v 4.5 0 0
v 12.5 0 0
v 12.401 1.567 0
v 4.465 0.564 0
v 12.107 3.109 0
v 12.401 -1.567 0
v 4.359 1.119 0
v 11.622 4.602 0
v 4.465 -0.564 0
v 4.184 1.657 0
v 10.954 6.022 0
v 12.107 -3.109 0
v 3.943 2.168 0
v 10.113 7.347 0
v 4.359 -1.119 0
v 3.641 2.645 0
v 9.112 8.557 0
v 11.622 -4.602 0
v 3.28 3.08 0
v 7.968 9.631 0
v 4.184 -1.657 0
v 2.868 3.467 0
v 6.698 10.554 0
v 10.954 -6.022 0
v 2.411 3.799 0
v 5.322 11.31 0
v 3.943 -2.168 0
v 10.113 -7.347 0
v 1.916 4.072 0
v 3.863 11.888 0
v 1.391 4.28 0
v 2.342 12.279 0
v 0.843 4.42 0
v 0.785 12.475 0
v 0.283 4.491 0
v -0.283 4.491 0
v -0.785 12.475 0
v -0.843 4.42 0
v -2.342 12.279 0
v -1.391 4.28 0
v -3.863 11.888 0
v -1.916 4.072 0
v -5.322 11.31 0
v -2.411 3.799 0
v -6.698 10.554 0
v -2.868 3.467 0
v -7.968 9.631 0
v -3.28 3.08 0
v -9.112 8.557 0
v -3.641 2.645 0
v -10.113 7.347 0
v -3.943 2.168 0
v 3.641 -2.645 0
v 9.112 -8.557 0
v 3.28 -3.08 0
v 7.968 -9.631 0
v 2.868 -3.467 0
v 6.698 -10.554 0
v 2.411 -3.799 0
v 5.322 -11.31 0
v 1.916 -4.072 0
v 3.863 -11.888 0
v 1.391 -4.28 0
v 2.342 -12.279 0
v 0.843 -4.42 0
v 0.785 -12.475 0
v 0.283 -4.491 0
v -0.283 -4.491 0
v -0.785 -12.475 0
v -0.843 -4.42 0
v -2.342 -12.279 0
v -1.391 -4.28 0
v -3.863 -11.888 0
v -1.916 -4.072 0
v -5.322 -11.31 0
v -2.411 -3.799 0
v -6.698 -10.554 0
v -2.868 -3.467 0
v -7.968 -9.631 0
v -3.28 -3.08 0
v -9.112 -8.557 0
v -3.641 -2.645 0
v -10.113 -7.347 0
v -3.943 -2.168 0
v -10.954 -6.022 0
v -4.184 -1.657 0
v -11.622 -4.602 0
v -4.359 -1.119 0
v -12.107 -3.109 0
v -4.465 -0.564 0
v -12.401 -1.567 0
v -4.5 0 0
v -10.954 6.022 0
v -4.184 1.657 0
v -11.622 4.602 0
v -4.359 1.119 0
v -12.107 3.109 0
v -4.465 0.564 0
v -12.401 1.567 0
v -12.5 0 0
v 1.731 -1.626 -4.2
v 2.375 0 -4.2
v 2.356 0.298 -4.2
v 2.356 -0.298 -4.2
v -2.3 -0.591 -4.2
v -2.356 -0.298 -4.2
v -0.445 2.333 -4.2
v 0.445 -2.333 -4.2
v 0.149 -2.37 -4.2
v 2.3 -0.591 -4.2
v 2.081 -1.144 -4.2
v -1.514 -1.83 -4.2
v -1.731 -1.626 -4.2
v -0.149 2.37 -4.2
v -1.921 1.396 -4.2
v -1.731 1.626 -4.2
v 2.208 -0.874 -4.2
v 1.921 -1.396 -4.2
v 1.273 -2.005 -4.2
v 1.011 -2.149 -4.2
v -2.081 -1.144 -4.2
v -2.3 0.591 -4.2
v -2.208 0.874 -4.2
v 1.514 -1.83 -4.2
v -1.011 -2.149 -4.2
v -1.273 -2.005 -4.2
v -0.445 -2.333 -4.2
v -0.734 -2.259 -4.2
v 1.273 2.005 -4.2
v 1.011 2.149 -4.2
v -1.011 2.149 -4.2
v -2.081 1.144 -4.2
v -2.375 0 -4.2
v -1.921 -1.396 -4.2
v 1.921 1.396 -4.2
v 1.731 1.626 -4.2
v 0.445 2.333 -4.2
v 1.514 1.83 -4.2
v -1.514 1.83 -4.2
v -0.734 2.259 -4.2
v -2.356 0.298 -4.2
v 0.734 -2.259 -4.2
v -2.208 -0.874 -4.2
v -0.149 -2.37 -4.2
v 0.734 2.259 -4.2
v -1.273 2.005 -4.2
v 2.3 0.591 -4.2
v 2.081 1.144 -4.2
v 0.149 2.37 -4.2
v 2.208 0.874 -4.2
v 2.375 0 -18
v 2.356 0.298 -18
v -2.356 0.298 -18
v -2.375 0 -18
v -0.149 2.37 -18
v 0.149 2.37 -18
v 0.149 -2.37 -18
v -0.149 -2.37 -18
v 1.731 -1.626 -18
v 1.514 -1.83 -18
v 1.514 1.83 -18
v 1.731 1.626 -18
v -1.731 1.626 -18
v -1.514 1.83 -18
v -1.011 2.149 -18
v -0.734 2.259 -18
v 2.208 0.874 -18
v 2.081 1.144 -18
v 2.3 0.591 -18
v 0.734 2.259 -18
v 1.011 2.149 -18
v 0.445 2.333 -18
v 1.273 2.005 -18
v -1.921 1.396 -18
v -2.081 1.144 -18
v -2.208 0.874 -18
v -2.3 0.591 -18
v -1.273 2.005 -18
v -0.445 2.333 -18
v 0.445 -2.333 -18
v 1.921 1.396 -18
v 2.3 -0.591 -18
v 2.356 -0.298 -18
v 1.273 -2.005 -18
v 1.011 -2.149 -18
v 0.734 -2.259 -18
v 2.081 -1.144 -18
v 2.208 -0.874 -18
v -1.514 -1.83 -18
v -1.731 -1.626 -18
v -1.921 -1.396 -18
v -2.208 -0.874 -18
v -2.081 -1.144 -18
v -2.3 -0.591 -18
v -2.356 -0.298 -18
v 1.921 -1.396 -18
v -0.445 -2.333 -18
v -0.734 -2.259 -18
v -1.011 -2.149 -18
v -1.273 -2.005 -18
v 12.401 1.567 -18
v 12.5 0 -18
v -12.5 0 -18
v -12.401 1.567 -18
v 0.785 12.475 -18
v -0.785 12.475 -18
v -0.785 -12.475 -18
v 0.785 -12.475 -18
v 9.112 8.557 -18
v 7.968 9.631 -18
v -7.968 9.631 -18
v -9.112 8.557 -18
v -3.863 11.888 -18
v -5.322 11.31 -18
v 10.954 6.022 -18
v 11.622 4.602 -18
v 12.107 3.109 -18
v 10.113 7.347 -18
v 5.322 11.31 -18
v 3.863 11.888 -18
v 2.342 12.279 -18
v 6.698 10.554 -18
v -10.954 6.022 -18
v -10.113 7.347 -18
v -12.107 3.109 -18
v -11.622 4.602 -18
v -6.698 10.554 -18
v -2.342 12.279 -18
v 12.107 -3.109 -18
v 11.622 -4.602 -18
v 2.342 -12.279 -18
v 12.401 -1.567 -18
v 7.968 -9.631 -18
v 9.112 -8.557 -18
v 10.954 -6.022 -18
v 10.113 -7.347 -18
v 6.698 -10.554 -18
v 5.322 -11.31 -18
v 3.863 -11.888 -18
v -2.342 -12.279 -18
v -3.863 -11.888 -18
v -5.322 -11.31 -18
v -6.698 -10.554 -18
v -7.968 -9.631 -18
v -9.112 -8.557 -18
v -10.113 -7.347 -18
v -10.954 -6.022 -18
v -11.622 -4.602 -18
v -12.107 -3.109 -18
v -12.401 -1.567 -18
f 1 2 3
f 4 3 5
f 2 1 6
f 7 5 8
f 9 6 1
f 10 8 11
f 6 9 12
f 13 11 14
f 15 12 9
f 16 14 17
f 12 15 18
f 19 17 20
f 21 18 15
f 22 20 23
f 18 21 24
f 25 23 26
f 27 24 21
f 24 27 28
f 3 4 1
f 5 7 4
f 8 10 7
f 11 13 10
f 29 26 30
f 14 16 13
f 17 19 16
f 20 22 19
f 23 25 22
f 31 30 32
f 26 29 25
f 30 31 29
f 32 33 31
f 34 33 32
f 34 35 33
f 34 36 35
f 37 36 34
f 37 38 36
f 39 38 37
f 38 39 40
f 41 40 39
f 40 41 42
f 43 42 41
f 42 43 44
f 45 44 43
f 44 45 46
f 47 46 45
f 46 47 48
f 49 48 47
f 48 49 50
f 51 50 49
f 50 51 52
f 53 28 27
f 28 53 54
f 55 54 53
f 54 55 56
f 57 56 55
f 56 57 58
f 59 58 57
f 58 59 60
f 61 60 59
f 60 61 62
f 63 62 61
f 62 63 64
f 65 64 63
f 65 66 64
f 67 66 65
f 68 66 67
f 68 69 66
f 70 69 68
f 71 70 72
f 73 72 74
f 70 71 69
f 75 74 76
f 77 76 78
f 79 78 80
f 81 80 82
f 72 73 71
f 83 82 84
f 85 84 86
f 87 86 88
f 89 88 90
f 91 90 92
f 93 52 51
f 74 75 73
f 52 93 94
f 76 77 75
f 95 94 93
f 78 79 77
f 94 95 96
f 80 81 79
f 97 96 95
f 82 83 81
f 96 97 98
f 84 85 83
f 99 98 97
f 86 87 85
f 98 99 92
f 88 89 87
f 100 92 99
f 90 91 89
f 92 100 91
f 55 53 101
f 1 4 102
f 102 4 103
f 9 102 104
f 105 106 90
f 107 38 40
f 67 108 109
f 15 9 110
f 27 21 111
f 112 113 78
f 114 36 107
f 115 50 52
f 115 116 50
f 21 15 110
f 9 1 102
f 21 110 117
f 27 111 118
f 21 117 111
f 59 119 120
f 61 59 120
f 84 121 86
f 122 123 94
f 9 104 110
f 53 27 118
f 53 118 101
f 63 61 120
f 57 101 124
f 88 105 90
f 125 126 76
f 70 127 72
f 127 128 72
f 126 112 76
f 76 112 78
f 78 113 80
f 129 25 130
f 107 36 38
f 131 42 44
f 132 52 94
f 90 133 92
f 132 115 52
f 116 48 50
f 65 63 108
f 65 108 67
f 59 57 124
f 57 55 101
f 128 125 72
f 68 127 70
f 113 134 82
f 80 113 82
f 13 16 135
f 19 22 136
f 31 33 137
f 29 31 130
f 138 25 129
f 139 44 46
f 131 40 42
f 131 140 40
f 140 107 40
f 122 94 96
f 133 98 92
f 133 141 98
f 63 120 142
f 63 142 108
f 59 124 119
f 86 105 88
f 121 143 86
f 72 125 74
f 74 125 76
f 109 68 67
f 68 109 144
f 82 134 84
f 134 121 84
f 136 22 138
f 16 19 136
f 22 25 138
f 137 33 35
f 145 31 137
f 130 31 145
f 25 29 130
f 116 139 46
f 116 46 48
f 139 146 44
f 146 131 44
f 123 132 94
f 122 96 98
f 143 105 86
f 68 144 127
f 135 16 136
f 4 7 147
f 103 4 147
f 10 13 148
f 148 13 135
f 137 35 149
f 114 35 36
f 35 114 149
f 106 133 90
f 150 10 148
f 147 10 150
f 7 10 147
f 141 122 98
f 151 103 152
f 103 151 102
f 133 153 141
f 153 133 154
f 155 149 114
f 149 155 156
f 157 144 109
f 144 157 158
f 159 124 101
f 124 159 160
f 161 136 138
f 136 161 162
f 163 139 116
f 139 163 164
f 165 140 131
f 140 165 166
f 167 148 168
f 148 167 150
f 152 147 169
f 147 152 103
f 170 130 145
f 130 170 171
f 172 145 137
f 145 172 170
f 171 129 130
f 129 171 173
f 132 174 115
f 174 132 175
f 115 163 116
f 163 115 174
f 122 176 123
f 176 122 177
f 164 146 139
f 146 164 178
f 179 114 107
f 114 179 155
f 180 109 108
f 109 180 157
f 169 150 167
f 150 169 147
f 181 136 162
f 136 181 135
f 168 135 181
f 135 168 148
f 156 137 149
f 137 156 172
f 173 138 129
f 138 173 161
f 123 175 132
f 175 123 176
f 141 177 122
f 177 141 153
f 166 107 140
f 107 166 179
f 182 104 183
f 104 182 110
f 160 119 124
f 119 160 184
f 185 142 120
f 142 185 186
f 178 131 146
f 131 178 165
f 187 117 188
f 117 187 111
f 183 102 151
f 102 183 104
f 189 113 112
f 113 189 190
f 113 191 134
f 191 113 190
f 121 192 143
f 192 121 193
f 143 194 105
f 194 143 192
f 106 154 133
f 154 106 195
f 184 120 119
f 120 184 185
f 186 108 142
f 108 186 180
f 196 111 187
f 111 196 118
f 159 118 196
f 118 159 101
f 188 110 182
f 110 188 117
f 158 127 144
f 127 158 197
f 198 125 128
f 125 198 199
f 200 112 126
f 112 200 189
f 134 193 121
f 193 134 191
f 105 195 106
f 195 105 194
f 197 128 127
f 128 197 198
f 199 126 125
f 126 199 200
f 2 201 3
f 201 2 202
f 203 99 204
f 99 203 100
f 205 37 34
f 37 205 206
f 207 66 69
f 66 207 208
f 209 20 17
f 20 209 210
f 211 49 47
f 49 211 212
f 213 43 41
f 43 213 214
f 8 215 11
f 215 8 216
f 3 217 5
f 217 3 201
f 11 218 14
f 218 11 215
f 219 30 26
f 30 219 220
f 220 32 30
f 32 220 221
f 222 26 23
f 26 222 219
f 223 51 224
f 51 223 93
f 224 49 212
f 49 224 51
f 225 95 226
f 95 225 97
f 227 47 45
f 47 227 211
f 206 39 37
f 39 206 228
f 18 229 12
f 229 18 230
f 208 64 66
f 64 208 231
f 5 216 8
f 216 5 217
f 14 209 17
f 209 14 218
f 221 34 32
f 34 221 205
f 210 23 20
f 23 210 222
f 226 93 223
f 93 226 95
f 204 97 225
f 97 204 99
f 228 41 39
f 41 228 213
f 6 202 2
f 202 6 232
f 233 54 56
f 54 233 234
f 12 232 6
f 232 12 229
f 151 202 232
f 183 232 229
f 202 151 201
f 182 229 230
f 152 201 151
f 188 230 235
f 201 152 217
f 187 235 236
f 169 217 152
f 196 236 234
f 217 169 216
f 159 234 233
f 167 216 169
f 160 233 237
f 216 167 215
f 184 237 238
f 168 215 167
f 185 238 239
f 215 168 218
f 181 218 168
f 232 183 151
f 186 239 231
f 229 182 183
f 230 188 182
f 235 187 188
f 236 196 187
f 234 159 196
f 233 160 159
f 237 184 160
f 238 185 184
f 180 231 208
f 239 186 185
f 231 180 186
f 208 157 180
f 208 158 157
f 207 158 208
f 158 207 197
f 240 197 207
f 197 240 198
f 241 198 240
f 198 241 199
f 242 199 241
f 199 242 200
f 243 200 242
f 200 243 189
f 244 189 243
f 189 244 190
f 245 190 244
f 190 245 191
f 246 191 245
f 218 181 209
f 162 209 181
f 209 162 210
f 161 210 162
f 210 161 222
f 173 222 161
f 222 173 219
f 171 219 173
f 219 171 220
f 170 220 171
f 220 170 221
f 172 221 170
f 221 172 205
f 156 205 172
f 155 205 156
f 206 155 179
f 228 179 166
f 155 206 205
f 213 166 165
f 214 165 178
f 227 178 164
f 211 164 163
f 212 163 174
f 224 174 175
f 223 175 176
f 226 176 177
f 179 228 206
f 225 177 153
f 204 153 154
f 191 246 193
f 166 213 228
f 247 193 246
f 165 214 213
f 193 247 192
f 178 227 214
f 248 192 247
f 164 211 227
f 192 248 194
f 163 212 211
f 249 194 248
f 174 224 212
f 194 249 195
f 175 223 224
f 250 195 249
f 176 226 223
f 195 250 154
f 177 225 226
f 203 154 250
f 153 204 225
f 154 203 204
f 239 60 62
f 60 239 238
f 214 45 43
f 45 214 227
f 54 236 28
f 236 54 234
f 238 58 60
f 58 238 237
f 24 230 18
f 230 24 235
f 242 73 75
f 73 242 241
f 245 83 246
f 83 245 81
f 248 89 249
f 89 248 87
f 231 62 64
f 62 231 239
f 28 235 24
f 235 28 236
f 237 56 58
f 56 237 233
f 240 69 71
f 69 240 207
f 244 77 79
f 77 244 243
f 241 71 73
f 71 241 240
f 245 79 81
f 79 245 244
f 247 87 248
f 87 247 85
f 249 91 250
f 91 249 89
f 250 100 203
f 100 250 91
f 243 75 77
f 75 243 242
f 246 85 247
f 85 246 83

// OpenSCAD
$fn = 50;

difference() {
	union() {
		translate(v = [0, 0, -18.0]) {
			cylinder(h = 18, r = 12.5);
		}
	}
	union() {
		translate(v = [0, 0, 0]) {
			rotate(a = [0, 0, 0]) {
				difference() {
					union() {
						translate(v = [0, 0, -21.0]) {
							cylinder(h = 21, r = 2.25);
						}
						translate(v = [0, 0, -4.2]) {
							cylinder(h = 4.2, r1 = 2.375, r2 = 4.5);
						}
						translate(v = [0, 0, -21.0]) {
							cylinder(h = 21, r = 2.375);
						}
						translate(v = [0, 0, -21.0]) {
							cylinder(h = 21, r = 2.25);
						}
					}
					union();
				}
			}
		}
	}
}
